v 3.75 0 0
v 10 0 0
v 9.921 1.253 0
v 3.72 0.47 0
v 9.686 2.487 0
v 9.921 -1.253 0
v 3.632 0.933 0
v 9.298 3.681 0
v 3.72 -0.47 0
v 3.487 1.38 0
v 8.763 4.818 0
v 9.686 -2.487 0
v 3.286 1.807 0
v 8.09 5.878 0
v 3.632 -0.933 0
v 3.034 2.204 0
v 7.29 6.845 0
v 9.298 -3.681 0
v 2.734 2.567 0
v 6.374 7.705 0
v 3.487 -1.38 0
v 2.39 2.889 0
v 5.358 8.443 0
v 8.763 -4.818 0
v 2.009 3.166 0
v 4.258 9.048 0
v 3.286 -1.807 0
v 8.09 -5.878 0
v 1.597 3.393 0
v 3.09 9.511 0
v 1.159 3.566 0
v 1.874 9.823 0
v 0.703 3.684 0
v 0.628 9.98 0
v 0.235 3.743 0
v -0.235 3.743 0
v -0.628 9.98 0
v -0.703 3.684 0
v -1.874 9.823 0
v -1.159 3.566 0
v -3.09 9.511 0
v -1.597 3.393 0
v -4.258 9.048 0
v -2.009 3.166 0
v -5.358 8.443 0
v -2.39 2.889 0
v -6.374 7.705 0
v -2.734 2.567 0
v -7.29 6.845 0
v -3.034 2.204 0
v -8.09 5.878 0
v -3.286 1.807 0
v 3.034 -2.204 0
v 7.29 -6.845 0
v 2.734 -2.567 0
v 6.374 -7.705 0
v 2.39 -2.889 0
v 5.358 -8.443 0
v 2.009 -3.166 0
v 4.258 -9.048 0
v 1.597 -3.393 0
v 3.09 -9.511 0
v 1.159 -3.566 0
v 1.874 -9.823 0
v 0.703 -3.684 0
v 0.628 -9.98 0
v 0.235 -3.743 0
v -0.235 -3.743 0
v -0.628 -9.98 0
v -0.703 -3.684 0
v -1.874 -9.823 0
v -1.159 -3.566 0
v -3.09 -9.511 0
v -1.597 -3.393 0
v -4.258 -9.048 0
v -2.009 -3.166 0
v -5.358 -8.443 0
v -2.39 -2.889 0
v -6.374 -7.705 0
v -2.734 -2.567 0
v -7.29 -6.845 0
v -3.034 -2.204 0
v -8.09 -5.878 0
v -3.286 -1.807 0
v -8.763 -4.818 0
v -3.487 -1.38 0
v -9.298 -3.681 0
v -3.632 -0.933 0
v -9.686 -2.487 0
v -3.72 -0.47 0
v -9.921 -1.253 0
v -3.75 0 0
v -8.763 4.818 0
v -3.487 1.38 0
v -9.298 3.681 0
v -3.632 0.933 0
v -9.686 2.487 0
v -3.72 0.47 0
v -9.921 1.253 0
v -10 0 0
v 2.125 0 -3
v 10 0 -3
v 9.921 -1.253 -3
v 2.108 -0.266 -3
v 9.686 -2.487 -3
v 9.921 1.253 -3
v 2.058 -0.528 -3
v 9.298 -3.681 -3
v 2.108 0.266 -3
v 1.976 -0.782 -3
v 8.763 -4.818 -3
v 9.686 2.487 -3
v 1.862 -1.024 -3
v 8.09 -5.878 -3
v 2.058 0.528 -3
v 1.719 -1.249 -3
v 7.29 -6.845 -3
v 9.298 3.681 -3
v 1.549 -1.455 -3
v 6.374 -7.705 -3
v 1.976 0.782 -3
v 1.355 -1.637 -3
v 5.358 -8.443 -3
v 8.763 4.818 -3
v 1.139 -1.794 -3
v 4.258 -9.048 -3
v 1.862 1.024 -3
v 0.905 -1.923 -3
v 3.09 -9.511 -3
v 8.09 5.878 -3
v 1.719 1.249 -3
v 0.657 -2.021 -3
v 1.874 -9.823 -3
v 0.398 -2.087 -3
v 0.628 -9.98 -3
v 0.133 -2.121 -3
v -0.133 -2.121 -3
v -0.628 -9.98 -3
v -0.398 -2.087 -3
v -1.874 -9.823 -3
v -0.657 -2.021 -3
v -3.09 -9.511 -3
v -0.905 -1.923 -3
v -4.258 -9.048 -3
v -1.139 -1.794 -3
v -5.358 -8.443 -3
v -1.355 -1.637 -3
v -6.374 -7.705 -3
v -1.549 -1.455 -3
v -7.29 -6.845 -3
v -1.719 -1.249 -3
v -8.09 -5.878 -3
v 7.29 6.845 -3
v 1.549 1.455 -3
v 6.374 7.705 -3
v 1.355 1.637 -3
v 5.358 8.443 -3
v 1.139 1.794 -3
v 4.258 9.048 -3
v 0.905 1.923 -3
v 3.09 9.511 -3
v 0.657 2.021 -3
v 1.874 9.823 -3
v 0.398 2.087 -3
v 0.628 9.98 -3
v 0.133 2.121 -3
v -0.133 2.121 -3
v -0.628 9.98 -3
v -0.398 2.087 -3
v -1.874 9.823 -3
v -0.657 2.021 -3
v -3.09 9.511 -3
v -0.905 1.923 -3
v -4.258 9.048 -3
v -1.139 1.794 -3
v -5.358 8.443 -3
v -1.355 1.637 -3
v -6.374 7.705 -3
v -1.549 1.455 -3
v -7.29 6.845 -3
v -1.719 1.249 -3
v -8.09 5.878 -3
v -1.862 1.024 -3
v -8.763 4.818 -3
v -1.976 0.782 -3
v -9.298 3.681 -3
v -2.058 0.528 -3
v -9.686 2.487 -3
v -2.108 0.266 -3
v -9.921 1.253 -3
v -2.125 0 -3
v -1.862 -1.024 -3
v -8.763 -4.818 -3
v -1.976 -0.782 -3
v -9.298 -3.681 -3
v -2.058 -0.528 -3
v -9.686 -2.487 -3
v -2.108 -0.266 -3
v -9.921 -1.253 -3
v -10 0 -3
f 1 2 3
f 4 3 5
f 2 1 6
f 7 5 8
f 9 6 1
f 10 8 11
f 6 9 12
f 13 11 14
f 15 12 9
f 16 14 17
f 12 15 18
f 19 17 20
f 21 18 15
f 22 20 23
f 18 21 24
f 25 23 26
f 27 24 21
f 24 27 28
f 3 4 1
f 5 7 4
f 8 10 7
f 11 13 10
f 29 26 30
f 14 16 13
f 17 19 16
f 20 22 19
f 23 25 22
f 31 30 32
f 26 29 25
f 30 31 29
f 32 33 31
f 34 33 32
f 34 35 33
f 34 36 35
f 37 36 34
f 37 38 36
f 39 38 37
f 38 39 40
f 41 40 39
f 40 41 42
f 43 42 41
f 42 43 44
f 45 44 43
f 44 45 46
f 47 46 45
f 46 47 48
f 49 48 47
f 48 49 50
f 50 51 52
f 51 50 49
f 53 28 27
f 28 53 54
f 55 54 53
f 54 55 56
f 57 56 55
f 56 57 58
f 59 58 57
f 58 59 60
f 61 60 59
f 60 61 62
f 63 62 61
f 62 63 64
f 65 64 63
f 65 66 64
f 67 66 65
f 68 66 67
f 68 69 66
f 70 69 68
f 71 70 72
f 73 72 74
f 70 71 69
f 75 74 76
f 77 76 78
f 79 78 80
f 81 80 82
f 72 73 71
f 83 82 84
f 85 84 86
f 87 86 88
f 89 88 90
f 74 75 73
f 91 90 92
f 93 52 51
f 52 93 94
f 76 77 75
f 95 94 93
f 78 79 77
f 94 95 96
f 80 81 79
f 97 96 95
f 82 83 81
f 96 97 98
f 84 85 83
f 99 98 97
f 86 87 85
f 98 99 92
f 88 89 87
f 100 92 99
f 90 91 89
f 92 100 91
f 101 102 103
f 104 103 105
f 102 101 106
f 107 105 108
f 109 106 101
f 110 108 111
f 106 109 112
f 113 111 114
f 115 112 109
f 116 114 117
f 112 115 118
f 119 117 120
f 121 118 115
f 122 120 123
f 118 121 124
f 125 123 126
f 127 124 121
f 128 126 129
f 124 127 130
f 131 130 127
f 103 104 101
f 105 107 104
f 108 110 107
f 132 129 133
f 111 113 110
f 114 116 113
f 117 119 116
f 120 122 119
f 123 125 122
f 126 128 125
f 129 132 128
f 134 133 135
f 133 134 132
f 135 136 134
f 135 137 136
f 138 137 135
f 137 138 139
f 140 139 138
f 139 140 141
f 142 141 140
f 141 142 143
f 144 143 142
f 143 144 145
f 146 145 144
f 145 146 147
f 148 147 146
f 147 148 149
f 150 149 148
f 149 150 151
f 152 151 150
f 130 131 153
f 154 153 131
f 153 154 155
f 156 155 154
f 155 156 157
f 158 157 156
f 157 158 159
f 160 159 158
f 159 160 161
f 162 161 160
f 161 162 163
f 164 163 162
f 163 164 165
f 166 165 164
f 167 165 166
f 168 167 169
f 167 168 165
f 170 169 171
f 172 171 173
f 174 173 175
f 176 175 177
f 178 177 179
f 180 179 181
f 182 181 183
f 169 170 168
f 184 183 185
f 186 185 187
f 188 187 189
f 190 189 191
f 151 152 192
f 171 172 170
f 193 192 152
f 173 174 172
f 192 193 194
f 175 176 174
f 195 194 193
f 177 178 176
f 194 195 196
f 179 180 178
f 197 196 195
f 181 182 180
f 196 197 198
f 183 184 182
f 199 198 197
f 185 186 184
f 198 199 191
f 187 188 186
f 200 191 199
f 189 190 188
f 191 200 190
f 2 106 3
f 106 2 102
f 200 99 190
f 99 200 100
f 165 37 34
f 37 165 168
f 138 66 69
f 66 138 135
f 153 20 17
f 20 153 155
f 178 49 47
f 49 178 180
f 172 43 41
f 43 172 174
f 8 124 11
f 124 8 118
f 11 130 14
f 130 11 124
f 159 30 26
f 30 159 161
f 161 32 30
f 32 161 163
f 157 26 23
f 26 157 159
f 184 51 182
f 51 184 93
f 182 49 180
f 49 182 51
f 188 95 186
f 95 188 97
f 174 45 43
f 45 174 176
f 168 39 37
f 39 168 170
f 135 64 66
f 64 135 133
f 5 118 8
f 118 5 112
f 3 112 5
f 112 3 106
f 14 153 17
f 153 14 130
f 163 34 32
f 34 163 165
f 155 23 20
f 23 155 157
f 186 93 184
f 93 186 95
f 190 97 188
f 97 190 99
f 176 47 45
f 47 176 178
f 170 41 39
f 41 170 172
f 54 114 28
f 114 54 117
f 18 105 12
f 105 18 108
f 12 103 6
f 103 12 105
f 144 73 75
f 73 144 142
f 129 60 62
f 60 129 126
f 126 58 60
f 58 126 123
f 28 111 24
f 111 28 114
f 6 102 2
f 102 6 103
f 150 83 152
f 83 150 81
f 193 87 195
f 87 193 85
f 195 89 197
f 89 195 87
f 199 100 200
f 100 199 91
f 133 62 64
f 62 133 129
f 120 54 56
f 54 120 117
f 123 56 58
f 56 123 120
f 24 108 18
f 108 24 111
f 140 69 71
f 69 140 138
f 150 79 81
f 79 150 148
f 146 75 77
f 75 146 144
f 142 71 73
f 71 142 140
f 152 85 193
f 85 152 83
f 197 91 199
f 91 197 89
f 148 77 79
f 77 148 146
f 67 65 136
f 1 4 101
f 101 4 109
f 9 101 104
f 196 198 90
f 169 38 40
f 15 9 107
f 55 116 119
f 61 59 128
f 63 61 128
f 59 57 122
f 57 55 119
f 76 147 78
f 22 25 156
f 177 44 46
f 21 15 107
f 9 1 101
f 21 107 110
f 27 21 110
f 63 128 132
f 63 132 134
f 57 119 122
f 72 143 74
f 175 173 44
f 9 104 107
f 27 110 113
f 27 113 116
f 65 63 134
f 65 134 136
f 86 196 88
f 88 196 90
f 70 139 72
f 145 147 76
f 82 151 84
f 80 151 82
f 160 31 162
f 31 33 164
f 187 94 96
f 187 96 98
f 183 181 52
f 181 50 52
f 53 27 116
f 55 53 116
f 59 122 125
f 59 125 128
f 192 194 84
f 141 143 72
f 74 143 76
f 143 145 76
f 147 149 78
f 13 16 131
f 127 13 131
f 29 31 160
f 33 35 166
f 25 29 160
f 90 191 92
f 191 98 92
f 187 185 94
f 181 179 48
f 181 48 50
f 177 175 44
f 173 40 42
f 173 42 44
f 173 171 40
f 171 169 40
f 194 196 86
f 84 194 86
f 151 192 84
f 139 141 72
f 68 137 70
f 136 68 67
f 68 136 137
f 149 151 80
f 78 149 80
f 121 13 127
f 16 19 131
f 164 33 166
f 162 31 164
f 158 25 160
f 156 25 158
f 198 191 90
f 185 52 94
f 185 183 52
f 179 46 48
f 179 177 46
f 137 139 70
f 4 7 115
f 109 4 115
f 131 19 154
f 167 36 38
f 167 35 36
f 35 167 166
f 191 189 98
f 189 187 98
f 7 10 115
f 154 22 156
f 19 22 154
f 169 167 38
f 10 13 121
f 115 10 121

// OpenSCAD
$fn = 50;


difference() {
	union() {
		translate(v = [0, 0, -3.0000000000]) {
			cylinder(h = 3, r = 7.0000000000);
		}
		translate(v = [0, 0, -3.0000000000]) {
			cylinder(h = 3, r = 10.0000000000);
		}
	}
	union() {
		translate(v = [0, 0, 0]) {
			rotate(a = [0, 0, 0]) {
				difference() {
					union() {
						#translate(v = [0, 0, -3.0000000000]) {
							cylinder(h = 3, r = 2.0000000000);
						}
						#translate(v = [0, 0, -3]) {
							cylinder(h = 3, r1 = 2.1250000000, r2 = 3.7500000000);
						}
						#translate(v = [0, 0, -3.0000000000]) {
							cylinder(h = 3, r = 2.1250000000);
						}
						#translate(v = [0, 0, -3.0000000000]) {
							cylinder(h = 3, r = 2.0000000000);
						}
					}
					union();
				}
			}
		}
	}
}
